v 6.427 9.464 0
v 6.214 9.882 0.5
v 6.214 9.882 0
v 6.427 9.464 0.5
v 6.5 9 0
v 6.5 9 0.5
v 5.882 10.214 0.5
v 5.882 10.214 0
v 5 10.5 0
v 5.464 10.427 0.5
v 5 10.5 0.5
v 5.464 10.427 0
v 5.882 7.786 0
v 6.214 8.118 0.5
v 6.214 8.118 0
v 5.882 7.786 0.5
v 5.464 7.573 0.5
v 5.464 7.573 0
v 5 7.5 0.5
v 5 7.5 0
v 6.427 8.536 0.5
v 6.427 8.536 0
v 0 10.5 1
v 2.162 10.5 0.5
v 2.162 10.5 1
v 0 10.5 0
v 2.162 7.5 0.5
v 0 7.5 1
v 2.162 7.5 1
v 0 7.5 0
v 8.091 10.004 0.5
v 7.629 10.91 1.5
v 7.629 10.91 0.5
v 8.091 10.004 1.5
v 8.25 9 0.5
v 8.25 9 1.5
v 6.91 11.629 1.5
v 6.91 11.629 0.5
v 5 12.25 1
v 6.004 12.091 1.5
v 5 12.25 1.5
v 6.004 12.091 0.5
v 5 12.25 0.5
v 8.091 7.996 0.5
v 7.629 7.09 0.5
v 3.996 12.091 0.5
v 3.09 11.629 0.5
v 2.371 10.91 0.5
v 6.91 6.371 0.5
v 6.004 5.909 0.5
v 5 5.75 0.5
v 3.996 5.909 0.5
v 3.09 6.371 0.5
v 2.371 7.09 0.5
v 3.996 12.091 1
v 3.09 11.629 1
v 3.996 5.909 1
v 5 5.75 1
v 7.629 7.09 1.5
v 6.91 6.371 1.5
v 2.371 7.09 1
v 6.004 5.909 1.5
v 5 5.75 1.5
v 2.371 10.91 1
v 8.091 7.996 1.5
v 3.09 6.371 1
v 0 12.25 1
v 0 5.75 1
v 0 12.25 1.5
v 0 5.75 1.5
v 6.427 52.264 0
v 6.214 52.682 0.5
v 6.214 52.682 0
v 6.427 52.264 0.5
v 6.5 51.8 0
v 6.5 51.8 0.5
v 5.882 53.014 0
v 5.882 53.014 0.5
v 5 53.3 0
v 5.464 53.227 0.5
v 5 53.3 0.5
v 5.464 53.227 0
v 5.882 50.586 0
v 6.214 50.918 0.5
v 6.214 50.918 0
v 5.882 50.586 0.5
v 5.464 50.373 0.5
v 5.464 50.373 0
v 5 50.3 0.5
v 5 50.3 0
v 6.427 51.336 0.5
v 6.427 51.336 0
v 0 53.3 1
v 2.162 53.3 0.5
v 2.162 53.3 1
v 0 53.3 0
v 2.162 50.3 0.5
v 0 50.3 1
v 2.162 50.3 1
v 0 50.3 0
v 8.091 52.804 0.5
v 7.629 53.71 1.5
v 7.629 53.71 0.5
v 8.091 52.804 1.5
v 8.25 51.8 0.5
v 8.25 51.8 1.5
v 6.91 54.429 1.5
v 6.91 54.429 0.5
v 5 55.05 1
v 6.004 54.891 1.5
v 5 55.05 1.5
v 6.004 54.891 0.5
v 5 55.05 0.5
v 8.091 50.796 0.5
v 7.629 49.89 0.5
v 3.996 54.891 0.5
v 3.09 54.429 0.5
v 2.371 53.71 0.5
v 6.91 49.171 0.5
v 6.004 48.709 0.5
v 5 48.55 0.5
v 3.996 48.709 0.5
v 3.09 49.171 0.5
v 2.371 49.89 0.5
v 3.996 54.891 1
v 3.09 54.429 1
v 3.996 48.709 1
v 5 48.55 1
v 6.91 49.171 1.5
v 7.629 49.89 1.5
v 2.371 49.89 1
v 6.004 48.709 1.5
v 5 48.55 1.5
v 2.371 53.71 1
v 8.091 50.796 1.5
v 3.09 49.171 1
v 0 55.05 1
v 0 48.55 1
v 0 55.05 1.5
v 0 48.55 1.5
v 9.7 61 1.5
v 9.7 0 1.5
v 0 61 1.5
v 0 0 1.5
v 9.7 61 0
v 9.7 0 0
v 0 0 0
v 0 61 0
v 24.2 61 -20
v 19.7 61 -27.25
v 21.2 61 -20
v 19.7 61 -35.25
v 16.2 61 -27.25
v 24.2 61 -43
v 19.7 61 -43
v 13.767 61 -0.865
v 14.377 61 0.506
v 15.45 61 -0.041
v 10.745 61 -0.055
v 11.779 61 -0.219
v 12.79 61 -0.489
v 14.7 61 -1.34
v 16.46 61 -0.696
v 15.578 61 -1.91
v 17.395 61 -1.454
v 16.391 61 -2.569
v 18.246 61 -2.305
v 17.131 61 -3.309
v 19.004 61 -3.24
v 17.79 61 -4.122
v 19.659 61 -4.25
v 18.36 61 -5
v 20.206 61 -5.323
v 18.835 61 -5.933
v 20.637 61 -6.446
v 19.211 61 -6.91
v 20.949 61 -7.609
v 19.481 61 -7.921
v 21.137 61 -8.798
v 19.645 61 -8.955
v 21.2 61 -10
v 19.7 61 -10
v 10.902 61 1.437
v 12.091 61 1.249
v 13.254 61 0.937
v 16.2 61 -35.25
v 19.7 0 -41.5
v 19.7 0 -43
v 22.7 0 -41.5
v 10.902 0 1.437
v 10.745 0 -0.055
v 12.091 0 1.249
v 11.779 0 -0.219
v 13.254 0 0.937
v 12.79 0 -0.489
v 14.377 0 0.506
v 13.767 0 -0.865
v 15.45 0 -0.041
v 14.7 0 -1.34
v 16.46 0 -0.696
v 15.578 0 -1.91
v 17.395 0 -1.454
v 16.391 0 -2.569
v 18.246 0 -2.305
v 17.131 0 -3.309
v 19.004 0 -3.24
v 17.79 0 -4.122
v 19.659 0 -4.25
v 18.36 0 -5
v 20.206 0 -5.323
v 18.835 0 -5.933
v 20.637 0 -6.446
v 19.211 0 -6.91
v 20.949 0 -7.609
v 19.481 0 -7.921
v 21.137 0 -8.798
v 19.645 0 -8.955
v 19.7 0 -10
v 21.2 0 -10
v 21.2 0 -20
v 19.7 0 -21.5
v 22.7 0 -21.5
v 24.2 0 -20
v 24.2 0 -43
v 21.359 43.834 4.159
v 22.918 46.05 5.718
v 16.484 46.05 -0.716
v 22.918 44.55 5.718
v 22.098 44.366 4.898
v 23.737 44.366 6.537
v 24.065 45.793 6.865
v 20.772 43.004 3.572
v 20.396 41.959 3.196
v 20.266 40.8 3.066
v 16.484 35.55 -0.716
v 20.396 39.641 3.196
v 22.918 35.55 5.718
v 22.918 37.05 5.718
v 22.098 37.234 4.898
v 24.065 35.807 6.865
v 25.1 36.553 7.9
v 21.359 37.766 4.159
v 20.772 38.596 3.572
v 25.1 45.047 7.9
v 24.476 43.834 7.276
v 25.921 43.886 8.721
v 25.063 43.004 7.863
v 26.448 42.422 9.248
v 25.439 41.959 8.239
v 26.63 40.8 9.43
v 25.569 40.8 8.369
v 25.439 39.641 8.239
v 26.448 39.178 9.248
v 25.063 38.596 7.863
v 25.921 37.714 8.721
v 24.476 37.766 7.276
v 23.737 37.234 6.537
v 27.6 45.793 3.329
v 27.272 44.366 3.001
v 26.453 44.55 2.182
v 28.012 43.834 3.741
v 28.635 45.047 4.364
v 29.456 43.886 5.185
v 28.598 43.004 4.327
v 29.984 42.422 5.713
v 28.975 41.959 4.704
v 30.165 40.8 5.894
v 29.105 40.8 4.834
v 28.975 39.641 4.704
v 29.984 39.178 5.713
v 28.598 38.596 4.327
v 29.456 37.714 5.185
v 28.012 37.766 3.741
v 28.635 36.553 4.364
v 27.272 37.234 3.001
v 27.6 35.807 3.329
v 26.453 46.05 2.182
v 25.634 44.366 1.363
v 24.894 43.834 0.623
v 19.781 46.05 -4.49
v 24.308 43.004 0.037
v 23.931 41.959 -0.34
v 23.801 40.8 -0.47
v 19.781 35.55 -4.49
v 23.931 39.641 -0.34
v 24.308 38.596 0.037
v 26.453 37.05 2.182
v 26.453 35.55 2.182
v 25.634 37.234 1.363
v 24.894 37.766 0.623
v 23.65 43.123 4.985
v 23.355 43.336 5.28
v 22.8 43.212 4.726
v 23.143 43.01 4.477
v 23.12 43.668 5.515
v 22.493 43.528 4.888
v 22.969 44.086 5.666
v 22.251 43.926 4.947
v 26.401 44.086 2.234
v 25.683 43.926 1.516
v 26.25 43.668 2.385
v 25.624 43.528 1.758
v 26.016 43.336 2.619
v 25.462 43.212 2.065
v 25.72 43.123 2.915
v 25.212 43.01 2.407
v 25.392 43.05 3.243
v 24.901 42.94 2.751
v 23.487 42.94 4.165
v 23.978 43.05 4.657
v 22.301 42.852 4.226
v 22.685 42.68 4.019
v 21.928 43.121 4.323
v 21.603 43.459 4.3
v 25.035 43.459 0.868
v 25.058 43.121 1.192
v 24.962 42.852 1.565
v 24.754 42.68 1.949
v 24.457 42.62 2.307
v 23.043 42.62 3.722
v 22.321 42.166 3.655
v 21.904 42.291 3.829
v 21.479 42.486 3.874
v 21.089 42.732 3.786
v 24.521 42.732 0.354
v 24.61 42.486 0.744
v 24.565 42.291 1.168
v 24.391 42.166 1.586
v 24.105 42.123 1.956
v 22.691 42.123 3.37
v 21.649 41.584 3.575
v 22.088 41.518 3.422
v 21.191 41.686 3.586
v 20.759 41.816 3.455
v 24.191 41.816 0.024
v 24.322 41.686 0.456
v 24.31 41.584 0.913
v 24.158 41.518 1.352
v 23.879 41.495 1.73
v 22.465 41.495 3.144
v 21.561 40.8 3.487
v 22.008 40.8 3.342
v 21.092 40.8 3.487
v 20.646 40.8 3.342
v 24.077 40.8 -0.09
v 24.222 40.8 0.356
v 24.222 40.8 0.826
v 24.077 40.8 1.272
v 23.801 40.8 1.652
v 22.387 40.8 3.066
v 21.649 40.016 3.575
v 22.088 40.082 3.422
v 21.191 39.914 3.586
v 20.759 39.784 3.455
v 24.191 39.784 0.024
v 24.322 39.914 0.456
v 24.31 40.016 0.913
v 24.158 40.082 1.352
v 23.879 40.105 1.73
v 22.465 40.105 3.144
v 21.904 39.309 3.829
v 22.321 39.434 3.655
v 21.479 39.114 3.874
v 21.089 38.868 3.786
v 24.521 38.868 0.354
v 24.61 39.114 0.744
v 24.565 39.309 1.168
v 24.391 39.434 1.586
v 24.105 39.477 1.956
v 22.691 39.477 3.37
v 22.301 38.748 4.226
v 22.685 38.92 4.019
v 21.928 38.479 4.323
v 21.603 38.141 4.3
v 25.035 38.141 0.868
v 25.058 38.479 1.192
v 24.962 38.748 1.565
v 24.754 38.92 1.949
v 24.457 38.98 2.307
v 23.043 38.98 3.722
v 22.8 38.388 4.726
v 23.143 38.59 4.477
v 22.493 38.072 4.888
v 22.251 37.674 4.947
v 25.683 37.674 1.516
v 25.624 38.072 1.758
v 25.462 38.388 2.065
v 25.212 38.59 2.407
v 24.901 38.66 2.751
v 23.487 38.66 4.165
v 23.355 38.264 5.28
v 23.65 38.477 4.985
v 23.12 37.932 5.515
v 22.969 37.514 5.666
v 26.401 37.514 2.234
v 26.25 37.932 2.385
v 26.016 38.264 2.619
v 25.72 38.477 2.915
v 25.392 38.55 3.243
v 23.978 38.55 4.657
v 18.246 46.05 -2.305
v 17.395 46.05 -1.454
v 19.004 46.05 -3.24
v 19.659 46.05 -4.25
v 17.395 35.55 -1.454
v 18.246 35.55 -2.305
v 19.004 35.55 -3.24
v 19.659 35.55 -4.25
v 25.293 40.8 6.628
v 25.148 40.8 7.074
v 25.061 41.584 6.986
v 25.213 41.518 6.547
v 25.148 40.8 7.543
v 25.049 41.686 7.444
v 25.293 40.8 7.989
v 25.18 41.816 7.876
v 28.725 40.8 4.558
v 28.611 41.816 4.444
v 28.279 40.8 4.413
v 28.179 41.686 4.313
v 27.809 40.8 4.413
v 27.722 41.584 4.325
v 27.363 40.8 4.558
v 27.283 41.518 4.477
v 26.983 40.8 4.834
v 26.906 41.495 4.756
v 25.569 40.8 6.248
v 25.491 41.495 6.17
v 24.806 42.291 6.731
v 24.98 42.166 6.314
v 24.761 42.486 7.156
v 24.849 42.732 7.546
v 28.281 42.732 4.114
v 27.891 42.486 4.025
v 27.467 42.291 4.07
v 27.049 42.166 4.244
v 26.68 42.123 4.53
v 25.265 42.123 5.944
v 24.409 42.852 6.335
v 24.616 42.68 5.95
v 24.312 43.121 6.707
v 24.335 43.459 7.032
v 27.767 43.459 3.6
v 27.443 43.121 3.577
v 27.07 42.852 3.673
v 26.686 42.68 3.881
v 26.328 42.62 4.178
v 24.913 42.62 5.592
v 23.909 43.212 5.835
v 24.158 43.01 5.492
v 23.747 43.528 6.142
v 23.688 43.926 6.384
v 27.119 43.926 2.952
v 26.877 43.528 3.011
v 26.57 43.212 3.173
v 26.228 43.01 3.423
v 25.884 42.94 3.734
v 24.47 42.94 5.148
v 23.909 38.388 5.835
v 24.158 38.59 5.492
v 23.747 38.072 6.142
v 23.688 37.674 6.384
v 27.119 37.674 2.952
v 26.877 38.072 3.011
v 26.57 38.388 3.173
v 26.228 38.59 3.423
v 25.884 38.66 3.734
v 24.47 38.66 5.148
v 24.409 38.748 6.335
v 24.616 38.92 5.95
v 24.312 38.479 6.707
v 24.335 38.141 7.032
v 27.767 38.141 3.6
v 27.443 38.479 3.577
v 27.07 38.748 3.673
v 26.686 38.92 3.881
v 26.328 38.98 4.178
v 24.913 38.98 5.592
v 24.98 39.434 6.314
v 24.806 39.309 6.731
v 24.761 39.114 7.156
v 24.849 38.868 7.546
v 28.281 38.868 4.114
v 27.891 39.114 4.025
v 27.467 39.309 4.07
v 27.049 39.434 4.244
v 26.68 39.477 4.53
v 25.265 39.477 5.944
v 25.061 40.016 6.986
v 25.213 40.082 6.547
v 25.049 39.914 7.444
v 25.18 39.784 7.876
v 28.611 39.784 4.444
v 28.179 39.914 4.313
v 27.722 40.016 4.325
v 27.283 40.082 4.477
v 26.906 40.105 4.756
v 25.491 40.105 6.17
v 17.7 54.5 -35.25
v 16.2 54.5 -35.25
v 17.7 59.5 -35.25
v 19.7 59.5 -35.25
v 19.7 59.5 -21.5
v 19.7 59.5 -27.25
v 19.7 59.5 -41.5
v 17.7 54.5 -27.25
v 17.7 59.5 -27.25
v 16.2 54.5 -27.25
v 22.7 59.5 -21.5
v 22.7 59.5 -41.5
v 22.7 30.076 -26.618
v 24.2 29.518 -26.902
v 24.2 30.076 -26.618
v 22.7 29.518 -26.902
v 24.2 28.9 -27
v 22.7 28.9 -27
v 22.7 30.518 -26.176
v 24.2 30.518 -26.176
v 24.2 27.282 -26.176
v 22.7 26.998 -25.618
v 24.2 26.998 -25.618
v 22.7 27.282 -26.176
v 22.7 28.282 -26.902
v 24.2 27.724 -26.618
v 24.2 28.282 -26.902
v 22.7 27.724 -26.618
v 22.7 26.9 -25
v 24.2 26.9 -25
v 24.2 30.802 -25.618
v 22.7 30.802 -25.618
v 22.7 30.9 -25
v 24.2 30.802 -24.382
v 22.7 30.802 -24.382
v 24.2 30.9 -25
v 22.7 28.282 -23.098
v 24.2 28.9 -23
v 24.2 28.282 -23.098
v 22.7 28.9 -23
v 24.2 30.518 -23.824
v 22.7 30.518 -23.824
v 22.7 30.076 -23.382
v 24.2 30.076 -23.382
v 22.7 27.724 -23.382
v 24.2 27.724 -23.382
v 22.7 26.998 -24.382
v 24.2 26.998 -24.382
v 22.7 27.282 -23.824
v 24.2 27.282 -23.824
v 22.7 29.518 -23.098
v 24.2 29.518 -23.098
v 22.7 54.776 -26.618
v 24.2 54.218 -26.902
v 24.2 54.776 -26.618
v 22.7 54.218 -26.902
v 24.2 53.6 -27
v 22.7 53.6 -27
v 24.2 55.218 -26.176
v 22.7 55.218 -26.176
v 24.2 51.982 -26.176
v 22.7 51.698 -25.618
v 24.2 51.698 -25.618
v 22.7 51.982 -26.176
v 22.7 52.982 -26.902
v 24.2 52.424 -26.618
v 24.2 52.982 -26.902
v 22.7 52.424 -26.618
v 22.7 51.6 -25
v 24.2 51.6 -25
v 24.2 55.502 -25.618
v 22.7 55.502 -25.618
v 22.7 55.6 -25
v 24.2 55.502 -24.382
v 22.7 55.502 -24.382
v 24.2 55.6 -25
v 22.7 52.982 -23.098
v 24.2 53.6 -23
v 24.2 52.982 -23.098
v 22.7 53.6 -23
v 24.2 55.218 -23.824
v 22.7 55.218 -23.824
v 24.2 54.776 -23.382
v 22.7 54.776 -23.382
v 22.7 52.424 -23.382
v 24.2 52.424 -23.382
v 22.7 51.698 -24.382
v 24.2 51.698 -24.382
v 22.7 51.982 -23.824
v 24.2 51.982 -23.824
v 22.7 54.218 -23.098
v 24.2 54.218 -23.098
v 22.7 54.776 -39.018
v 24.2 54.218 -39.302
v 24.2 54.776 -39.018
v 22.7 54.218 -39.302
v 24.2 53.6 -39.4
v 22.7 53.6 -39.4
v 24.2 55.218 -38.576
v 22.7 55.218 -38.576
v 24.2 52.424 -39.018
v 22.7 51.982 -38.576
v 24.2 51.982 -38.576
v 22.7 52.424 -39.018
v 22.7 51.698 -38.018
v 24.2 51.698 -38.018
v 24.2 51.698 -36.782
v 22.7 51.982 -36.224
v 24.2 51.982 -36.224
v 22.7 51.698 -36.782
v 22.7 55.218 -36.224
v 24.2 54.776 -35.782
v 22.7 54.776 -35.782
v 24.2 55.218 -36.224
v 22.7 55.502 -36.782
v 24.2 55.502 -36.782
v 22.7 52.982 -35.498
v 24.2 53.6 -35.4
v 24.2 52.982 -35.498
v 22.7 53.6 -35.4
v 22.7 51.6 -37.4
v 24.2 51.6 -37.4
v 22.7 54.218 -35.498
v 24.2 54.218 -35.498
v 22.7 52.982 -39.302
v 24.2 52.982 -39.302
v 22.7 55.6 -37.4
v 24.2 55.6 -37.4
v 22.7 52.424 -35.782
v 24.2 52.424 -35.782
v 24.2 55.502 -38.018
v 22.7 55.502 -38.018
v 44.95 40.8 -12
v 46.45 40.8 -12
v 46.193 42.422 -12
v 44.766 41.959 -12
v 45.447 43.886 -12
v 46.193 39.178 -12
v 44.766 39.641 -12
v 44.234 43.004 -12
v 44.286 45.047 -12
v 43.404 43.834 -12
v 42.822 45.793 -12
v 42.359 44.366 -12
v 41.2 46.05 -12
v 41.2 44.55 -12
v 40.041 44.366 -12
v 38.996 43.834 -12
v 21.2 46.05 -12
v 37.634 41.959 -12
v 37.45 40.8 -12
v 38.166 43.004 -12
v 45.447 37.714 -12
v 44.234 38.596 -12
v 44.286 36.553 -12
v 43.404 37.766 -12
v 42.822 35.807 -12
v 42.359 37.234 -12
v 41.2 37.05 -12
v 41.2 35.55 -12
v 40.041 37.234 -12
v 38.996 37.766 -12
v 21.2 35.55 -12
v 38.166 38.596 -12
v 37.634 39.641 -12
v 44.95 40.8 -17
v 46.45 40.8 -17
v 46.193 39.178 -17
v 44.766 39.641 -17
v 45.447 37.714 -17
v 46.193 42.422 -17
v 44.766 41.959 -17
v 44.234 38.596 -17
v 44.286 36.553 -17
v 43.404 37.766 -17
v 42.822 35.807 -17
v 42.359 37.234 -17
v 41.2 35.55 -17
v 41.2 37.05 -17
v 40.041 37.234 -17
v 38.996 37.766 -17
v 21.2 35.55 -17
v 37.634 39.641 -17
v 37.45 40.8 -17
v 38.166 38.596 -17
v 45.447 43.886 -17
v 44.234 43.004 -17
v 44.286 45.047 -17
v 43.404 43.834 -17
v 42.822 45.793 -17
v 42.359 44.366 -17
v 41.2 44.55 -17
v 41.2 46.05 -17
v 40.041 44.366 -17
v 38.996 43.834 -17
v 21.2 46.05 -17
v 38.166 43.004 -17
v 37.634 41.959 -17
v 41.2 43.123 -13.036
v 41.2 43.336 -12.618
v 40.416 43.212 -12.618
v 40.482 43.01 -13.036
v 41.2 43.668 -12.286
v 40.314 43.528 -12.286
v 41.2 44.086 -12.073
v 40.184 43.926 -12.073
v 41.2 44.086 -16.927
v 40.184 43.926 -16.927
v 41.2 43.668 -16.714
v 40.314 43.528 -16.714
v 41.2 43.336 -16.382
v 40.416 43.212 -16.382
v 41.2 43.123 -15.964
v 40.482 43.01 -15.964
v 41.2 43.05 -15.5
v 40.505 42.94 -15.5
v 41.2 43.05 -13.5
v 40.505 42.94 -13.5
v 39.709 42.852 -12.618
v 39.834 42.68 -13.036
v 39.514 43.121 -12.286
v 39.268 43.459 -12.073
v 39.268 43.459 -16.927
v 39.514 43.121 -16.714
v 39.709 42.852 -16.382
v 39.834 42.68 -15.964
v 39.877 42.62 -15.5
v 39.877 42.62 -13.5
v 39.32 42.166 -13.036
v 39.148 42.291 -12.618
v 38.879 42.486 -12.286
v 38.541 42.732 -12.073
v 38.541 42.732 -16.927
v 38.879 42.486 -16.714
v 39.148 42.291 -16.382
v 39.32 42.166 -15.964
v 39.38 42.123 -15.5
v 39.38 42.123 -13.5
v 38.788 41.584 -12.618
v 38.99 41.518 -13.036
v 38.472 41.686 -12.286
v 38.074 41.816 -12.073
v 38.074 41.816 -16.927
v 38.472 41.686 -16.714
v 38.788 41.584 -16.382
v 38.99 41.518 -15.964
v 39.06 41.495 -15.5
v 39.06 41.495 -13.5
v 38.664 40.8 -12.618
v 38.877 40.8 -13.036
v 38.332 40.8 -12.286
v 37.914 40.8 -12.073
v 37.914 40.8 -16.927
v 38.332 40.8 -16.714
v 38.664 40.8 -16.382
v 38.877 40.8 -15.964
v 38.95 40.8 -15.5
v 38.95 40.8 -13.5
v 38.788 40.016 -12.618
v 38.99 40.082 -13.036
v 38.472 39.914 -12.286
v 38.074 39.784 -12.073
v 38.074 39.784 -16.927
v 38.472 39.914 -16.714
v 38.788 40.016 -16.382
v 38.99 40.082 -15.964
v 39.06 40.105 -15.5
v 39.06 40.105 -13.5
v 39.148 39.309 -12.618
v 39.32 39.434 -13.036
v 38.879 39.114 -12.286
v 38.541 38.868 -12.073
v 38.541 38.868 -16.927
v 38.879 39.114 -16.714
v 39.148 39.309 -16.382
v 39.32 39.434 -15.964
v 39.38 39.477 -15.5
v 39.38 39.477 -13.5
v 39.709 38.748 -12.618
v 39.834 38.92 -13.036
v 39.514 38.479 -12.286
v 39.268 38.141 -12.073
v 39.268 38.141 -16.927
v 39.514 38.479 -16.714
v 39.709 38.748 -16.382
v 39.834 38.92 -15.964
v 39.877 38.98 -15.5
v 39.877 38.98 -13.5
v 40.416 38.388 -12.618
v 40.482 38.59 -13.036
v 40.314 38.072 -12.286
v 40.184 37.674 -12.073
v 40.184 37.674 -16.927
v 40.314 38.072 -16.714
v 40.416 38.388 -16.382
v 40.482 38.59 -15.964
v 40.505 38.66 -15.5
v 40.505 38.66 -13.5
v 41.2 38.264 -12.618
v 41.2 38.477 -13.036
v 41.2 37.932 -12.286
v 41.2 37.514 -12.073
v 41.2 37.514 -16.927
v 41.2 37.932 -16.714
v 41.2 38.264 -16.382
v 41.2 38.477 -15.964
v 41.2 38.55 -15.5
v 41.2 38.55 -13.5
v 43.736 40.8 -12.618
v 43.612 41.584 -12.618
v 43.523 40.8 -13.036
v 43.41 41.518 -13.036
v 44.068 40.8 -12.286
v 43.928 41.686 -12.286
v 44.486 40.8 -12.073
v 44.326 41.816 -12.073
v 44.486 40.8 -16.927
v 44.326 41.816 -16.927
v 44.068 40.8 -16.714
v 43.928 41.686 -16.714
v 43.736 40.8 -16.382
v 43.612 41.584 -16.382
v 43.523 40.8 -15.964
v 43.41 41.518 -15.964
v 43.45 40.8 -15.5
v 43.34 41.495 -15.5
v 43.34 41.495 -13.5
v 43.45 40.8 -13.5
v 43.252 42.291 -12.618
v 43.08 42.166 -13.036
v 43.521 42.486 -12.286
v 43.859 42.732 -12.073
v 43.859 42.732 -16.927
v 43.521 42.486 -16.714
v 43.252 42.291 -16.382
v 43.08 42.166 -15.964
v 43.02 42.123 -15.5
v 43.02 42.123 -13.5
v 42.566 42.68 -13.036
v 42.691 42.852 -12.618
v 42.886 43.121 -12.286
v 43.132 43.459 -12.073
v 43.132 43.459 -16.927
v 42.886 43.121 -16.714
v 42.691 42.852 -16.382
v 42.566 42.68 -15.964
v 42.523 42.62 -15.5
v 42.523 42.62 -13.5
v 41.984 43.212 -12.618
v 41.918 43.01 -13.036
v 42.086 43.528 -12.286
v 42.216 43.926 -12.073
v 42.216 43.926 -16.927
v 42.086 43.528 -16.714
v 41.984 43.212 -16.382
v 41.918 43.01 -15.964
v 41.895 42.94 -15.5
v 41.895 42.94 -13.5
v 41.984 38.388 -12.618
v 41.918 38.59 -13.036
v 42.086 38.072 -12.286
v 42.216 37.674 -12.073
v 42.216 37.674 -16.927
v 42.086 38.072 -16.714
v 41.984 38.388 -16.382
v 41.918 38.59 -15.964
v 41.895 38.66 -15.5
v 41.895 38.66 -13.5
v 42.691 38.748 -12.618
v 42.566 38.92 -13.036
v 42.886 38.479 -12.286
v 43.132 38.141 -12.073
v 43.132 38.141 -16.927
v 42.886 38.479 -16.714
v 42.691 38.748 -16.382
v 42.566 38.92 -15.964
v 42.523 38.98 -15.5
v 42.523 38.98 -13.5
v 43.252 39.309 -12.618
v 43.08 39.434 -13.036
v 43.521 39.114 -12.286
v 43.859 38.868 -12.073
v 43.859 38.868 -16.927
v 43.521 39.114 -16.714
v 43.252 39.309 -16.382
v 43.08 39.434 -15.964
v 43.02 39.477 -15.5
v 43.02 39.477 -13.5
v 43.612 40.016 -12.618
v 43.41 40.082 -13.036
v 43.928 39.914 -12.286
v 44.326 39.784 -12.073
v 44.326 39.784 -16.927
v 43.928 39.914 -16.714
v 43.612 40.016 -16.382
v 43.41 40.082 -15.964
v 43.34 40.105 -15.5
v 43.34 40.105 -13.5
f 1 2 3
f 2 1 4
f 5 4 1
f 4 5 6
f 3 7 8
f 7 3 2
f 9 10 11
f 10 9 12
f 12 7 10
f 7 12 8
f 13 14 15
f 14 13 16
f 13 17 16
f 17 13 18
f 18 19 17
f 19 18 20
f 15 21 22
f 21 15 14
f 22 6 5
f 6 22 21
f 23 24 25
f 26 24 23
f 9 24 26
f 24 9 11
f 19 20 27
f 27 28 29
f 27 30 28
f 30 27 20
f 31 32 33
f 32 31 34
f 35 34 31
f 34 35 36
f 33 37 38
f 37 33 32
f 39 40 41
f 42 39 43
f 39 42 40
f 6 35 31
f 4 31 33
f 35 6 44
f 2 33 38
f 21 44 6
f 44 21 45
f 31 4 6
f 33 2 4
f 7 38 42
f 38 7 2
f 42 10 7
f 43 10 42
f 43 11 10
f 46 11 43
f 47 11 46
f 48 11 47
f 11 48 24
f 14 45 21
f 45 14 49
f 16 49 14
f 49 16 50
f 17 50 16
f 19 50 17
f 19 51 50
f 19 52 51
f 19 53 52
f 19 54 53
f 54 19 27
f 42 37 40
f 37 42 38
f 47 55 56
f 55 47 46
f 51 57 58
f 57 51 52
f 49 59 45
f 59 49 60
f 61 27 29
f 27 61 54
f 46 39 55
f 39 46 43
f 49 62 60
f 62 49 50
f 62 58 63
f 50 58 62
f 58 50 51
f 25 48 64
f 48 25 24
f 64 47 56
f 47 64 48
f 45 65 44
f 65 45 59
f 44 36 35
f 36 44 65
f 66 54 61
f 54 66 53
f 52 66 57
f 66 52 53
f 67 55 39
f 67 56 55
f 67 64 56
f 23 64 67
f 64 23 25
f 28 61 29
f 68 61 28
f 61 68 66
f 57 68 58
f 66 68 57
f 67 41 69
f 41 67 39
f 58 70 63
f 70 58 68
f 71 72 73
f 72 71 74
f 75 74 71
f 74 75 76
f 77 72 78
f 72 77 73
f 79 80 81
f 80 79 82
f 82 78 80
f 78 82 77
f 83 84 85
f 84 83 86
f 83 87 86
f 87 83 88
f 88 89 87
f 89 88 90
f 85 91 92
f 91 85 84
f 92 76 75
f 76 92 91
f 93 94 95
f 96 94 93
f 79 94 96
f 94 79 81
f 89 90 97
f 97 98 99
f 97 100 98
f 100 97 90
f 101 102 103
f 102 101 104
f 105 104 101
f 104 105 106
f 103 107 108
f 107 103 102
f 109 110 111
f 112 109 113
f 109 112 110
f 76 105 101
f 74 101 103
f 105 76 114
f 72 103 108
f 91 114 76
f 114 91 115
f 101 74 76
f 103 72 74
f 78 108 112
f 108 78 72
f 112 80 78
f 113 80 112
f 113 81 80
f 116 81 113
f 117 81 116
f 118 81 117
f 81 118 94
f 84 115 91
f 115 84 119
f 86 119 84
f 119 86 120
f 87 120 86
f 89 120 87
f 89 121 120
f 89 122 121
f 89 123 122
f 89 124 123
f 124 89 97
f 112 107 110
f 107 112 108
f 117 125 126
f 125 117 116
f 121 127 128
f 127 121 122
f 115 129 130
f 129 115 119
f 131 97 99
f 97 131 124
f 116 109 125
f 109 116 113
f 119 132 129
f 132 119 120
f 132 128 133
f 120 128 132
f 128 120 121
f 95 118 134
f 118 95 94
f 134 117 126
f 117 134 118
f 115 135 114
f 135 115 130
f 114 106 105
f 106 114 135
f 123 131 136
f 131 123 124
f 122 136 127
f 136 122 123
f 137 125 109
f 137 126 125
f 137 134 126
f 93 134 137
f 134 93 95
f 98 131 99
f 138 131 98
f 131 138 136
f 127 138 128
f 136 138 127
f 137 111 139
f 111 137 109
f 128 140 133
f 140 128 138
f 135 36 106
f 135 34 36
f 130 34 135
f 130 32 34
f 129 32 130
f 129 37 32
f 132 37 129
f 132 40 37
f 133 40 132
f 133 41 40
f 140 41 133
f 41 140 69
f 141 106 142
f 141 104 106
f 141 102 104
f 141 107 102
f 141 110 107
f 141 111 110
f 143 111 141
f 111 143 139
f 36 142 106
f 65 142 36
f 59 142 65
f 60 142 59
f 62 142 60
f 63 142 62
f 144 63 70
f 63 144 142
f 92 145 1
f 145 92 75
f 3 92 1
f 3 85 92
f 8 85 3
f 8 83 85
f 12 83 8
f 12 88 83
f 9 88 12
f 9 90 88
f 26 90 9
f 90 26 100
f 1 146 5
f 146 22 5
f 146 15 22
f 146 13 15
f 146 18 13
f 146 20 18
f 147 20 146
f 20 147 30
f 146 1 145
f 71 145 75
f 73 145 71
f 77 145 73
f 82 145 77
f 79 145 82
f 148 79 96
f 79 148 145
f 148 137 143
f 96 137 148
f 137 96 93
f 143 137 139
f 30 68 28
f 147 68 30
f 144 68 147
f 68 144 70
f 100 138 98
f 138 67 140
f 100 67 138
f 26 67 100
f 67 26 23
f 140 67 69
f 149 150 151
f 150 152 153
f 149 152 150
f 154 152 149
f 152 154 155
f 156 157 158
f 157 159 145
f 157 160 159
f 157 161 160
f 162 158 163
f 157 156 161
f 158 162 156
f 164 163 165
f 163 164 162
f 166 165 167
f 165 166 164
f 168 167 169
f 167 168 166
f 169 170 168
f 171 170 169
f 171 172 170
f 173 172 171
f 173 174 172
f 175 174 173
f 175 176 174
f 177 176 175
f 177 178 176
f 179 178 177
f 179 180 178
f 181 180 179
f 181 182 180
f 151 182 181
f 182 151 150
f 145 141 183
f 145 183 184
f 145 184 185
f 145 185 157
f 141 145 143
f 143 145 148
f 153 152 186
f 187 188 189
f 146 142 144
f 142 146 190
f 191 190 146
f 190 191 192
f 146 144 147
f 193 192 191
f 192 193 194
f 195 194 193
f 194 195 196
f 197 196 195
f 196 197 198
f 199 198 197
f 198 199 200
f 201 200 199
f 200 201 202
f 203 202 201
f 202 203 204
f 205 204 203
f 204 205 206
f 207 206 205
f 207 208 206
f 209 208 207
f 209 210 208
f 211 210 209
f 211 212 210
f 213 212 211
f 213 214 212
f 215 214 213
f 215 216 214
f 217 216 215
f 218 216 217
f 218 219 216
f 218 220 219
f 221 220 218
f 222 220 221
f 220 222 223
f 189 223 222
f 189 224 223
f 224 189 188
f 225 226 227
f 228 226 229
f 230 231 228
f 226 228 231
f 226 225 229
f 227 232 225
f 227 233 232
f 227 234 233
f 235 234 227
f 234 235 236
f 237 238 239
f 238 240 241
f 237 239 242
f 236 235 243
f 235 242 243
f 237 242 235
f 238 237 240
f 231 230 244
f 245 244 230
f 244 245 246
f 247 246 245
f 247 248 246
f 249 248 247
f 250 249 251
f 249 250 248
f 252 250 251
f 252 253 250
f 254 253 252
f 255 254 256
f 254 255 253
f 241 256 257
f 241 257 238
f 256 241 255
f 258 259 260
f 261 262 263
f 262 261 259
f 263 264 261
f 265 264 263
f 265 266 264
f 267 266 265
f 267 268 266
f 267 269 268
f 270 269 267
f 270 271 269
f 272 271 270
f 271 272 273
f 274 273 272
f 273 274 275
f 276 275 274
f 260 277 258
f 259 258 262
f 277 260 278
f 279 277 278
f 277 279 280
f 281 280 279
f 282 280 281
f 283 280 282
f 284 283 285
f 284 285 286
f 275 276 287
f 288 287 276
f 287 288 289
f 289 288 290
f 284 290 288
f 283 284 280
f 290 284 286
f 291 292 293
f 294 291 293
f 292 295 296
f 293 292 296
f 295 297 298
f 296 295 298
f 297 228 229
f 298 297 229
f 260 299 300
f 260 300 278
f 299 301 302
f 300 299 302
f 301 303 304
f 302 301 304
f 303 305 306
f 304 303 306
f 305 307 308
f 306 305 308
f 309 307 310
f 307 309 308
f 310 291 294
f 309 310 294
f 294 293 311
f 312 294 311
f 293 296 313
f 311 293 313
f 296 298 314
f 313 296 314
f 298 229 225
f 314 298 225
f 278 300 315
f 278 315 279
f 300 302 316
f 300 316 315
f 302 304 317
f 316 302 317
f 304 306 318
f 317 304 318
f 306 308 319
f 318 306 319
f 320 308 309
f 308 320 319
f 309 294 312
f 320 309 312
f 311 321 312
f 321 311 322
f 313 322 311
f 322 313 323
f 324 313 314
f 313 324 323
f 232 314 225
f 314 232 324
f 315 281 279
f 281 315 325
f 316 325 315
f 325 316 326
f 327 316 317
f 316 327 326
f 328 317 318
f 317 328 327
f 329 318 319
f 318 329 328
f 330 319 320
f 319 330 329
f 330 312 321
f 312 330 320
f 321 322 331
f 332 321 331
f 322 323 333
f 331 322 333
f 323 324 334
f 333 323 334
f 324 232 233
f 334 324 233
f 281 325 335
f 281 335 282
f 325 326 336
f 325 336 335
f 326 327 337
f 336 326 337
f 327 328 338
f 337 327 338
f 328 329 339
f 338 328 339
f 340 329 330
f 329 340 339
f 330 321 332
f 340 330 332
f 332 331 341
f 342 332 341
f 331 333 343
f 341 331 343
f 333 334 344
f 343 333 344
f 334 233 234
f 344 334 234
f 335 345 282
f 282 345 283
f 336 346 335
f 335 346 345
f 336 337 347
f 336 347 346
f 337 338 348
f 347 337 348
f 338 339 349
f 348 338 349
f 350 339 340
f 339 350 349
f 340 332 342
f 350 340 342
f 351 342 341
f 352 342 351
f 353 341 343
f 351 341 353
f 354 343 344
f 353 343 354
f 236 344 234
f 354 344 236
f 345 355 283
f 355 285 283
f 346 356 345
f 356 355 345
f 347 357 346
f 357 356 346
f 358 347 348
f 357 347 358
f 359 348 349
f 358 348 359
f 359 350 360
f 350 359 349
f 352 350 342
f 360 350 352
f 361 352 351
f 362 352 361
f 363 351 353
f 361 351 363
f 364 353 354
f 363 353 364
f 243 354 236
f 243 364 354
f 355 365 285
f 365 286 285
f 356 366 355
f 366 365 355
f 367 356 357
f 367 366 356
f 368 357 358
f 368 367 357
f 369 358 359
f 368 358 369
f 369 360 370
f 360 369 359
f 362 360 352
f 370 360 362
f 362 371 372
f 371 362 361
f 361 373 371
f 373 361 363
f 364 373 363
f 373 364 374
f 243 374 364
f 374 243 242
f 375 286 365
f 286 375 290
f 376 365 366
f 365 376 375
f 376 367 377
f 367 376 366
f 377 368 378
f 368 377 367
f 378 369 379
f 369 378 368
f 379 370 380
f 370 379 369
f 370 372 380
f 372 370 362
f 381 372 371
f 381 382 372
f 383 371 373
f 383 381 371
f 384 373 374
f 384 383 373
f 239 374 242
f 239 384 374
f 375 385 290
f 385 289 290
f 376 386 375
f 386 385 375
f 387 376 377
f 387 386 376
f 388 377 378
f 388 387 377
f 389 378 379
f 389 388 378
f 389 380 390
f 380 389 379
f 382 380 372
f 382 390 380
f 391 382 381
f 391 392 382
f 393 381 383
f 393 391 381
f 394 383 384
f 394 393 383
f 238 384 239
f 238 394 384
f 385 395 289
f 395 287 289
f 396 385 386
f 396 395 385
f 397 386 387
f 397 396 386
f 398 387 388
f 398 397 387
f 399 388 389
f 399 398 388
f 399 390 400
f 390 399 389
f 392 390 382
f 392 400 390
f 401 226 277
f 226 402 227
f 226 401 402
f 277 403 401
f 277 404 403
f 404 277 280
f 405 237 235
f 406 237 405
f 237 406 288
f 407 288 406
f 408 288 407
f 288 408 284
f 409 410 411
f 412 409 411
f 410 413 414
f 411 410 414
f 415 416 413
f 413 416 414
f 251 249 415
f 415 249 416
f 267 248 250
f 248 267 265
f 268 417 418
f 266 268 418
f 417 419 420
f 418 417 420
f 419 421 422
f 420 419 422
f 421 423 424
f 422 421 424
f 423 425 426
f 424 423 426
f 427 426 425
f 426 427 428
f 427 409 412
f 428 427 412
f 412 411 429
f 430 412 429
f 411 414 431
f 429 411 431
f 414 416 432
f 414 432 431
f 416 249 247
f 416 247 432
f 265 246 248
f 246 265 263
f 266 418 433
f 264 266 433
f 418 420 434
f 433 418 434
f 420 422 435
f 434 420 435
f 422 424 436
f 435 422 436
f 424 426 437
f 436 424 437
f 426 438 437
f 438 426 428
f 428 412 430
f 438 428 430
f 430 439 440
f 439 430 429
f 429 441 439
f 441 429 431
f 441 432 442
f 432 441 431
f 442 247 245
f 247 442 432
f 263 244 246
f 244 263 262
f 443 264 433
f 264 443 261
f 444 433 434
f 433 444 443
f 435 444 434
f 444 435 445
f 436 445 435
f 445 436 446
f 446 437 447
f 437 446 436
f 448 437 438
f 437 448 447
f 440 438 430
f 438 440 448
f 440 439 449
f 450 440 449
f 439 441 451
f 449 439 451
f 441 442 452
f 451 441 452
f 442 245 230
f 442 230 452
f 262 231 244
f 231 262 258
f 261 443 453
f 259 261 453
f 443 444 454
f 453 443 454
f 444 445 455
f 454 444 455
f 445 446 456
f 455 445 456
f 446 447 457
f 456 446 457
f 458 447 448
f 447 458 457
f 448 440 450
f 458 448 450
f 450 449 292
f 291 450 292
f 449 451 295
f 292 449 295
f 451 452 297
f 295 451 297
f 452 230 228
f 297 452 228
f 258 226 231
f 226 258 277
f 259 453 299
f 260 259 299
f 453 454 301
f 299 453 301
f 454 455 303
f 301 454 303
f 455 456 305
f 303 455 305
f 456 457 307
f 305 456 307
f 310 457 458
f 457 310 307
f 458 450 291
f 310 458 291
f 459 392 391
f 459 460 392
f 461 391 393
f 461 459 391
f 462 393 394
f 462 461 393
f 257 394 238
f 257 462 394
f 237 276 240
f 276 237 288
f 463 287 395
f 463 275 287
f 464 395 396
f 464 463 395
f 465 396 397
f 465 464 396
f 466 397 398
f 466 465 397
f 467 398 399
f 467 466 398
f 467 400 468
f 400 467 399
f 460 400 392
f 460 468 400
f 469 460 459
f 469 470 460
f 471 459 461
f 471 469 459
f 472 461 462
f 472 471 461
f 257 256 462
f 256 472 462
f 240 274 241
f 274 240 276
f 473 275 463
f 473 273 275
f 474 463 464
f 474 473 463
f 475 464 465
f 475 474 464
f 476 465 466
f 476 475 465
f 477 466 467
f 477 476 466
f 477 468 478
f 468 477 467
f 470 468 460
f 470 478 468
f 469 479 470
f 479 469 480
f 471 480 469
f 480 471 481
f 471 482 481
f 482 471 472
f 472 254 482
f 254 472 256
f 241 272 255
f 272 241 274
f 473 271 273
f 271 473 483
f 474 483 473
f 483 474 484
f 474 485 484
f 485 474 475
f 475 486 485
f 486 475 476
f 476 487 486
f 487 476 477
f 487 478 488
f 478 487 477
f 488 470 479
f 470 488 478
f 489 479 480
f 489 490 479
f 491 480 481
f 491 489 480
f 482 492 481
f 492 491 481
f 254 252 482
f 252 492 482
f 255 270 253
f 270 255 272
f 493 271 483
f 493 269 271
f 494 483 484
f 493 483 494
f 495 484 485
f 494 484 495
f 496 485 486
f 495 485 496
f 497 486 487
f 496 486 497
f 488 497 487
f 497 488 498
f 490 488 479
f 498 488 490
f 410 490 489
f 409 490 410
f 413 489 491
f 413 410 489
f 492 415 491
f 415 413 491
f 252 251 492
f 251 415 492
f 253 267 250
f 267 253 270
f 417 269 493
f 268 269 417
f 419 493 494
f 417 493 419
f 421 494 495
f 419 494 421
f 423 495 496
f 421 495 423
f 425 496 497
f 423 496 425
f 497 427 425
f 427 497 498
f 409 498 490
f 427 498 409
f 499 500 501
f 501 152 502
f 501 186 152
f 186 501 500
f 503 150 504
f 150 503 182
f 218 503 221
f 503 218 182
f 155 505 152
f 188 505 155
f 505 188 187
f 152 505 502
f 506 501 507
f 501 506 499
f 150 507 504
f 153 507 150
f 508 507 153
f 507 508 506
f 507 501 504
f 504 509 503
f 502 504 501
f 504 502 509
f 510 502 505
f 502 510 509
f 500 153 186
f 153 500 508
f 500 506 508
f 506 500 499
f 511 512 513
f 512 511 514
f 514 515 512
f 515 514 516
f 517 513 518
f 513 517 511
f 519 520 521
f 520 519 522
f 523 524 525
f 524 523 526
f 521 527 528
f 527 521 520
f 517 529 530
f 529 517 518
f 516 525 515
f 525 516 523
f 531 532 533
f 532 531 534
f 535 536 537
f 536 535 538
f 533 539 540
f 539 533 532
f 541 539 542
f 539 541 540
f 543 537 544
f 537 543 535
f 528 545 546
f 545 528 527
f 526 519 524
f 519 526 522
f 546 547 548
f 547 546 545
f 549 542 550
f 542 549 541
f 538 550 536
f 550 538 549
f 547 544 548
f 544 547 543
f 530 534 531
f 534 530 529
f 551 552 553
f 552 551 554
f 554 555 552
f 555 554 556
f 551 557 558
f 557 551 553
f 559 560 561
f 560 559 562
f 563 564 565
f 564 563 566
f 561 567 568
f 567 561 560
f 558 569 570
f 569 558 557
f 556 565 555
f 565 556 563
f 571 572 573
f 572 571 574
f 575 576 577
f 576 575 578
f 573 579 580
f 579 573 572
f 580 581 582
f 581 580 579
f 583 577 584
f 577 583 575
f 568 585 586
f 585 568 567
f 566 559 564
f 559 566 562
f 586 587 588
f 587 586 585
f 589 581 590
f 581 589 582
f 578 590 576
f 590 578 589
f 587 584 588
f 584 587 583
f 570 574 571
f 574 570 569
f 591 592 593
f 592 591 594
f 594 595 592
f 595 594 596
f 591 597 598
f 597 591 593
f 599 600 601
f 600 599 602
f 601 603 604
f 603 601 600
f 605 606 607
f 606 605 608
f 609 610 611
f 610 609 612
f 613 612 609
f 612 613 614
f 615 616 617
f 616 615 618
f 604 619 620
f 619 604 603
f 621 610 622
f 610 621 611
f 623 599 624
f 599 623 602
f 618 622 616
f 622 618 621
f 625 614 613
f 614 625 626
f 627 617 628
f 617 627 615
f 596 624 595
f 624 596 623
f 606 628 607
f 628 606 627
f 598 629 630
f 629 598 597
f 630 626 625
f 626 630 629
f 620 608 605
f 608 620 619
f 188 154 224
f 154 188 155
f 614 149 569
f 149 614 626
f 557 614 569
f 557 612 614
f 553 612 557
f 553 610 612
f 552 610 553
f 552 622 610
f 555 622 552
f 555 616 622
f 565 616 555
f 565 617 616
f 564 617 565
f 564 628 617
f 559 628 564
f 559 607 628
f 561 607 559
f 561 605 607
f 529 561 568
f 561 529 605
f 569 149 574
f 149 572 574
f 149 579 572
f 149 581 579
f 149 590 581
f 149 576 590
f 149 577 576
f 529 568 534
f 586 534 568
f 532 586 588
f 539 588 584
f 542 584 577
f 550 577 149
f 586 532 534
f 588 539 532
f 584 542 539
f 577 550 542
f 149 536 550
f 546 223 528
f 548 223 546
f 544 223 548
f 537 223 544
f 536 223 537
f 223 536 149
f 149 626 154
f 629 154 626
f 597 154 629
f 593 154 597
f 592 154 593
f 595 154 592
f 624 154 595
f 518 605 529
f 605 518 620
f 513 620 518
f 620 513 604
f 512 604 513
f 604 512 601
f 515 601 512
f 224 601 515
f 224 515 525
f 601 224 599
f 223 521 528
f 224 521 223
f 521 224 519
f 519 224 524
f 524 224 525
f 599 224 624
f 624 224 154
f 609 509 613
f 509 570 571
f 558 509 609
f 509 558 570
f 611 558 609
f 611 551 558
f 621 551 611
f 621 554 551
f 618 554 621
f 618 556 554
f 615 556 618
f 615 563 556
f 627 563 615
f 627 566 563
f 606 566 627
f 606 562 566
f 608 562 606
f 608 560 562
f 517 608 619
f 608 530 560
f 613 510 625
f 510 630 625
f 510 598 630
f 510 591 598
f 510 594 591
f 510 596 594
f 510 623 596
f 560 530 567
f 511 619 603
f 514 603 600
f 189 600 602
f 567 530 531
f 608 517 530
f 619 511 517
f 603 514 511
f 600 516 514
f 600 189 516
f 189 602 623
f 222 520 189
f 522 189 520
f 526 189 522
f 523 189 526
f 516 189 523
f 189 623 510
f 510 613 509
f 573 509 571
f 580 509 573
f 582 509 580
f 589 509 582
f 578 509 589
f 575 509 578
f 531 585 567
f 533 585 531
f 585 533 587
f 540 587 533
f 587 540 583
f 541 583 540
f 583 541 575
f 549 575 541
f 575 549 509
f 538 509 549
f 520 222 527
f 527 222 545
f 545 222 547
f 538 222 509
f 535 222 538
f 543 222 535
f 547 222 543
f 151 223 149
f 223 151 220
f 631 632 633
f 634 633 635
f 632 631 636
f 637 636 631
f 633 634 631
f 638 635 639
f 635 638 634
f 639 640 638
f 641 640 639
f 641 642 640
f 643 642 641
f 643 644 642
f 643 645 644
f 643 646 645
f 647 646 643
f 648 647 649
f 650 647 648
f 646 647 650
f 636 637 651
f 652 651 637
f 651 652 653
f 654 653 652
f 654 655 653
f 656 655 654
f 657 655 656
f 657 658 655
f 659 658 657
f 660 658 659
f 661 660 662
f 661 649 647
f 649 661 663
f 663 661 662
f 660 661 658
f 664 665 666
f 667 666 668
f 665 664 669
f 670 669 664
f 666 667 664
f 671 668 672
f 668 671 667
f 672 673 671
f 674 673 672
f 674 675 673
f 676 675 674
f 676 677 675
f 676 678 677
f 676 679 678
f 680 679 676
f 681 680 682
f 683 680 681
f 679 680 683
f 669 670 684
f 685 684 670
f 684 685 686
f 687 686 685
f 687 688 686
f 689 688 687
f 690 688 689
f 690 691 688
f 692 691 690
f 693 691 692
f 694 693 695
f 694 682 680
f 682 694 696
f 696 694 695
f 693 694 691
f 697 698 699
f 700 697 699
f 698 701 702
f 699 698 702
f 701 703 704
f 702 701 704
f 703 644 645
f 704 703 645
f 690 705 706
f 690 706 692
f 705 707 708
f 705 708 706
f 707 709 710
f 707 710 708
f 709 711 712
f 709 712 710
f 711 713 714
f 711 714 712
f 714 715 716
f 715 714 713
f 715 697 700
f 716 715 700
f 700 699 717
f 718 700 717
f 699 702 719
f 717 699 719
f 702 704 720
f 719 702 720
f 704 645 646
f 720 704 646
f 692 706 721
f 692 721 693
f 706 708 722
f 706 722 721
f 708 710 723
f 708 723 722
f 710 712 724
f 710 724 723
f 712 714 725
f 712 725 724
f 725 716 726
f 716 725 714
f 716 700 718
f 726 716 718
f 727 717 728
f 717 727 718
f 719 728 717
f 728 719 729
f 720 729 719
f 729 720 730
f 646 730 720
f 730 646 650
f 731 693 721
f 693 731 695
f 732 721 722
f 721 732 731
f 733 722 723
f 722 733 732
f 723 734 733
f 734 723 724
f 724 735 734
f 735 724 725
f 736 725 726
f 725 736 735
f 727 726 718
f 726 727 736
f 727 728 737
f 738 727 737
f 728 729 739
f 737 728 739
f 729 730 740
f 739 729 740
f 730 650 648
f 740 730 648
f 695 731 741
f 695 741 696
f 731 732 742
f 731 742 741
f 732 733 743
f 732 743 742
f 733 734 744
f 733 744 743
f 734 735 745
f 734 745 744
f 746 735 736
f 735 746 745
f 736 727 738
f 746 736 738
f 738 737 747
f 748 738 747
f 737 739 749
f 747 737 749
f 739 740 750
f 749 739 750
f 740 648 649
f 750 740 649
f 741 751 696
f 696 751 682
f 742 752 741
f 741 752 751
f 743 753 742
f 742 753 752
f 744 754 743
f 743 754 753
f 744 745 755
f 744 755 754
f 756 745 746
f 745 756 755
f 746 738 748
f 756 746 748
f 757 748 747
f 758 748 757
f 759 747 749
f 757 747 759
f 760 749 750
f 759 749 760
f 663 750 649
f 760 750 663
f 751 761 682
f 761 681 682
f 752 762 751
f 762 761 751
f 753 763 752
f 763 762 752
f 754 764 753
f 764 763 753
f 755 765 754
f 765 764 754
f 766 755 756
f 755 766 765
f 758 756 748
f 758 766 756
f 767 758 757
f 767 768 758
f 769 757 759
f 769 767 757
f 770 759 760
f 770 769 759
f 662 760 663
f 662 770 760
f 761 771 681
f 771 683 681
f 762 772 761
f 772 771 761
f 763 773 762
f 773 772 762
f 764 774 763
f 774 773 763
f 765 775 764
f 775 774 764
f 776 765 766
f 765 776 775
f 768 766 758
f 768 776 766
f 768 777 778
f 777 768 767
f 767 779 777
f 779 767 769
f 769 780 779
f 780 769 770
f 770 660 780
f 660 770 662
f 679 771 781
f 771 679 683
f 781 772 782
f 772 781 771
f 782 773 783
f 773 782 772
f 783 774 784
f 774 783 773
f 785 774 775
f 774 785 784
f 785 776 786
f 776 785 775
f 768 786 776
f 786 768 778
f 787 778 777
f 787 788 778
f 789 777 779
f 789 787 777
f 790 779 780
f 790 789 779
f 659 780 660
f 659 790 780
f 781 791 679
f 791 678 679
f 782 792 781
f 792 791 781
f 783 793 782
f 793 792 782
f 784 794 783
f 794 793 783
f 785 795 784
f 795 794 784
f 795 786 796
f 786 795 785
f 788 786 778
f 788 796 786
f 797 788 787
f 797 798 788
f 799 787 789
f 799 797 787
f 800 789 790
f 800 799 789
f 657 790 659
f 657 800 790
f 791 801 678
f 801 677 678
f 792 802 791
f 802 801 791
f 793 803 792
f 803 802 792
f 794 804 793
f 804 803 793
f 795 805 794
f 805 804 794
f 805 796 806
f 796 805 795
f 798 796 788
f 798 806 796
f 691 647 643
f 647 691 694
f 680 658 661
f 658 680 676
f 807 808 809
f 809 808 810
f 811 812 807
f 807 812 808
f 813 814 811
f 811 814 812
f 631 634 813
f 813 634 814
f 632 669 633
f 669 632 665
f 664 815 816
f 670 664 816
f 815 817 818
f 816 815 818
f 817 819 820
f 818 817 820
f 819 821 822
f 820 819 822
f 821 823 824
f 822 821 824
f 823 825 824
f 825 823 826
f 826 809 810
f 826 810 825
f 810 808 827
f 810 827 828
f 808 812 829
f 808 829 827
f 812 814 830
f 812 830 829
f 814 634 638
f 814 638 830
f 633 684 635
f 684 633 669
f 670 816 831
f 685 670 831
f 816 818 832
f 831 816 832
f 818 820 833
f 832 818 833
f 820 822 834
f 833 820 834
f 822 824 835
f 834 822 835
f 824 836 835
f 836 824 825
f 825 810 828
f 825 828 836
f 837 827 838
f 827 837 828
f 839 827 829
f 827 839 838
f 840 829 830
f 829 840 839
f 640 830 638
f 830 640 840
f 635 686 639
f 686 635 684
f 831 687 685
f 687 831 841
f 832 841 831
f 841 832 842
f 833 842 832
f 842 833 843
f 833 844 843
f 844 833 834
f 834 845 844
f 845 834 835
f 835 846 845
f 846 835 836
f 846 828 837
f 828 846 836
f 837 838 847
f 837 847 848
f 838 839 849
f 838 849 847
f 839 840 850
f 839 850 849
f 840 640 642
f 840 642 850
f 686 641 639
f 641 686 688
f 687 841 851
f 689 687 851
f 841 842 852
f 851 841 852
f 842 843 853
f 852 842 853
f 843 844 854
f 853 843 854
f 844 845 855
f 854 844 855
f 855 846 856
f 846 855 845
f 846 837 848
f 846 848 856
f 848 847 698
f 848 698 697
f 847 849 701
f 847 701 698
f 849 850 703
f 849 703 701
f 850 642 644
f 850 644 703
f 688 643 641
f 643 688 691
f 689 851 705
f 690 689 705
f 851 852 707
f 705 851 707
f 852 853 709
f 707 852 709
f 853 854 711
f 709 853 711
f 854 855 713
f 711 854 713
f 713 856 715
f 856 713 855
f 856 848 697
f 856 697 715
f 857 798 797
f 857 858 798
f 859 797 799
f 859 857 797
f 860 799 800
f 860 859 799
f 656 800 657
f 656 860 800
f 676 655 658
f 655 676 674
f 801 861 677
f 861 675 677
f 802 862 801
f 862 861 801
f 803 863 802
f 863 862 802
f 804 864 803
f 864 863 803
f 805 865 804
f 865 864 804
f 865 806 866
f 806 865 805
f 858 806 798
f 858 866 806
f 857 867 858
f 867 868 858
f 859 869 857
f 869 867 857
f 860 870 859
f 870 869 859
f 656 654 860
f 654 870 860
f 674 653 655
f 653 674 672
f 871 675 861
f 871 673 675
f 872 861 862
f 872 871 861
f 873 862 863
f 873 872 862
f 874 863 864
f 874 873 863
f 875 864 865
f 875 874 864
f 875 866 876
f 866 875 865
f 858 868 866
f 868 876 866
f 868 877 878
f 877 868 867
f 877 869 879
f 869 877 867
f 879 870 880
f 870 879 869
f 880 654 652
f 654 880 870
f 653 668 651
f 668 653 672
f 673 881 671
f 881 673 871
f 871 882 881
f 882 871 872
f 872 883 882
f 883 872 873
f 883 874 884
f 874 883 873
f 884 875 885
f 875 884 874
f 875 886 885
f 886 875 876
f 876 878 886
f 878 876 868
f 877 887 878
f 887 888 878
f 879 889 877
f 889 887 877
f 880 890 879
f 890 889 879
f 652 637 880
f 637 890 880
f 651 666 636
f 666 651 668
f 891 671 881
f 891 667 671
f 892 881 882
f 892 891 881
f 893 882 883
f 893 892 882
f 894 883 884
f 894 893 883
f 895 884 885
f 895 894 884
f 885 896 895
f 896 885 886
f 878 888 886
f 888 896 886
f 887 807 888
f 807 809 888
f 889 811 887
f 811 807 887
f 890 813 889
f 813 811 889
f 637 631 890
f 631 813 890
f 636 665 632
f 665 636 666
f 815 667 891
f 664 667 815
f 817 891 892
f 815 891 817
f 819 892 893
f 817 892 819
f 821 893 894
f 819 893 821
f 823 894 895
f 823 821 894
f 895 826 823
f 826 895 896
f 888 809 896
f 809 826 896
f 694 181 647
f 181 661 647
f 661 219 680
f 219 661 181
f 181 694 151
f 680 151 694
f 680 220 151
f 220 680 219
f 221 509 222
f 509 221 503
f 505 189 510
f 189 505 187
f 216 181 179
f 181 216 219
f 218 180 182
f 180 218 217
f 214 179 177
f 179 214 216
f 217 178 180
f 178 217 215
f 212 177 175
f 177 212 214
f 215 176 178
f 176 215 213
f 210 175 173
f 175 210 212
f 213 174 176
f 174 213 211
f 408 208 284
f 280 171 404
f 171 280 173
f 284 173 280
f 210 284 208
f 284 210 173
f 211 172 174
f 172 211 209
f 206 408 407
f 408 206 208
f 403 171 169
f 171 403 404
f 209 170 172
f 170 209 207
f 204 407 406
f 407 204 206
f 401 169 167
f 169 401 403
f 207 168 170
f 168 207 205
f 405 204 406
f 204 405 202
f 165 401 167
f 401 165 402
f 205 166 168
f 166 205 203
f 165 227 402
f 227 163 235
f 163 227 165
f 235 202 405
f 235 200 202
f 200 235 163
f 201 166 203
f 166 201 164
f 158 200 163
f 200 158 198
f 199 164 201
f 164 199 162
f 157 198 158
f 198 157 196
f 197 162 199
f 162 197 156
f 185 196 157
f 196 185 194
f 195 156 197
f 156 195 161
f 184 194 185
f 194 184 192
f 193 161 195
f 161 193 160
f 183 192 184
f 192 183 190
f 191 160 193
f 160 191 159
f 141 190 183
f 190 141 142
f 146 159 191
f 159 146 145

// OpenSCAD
// Runout sensor bracket for MP Mini Select V2 and BTT SVS v2

// Helpers
x=0; y=1; z=2;

// Parameters
$fn = 20;
thickness = 1.5;			// z-thickness of shelf
ydim = 59.5 + thickness;	// Total y size of part
bezel_r = 5;				// Radius of bezeled corners of bracket

// Chassis screw 49.13 head to head - 6.31/head = 42.82
chassis_screw_ydelta = 42.8;
chassis_screw_yorigin = 9;
chassis_screw_r = 3 / 2;	// Radius of chasssis mounting screw holes
chassis_screws = [			// Positions of chassis mounting screw holes
	[5,chassis_screw_yorigin],
	[5, chassis_screw_yorigin + chassis_screw_ydelta]
];
chassis_slot_thickness = 1.0;
chassis_screw_well_thickness = 0.5;
chassis_screw_well_r = 6.5 / 2;
chassis_bezel_r = 10.0;		// Radius of bend at corner of chassis
chassis_xdim = chassis_screws[0][x] + 14.7 - chassis_bezel_r;			// Width of straight run of chassis shelf

// Chassis filament port is -11.0 from chassis_screws[1] 
// Sensor filament port is +11.9 from sensor_screws[0]
filament_plane = chassis_screws[1][y] - 11.0;
filament_height_at_sensor = 20.0 - thickness;
filament_height_at_chassis = 11.0 - thickness;

sensor_screw_r = 4 / 2;		// Radius of sensor mounting screw holes
sensor_screw_ydelta = 24.7;
sensor_screw_xdelta = 12.4;
sensor_screw_yorigin = filament_plane - 11.9 - bezel_r;
sensor_screws = [			// Positions of sensor mounting screw holes
	// [0,15],
	// [0, 39],
	// [12, 39]
	[0, sensor_screw_yorigin],
	[0, sensor_screw_yorigin + sensor_screw_ydelta],
	[0 + sensor_screw_xdelta, sensor_screw_yorigin + sensor_screw_ydelta]
];
sensor_shelf_standoff = 3;
sensor_xdim = 23;
sensor_xdelta = 10; // Height of straight run before start of sensor shelf

gantry_hook_gap = 2.0; // Thickness of sheet-steel
gantry_hook_height = 8.0;
gantry_hook_depth = 5.0;

grommet_inner_r = 2.25;
grommet_thickness = 3;
grommet_bezel_r = 1.5;
grommet_depth = 5;
grommet_xoff = -grommet_depth - 3;

// Assembly

chassis_shelf();
chassis_bezel();
// Stick a filament guide on the chassis bezel
translate([chassis_xdim + chassis_bezel_r - (grommet_depth / 2) - 1, filament_plane, -1])
    rotate([0,45,0])
        filament_guide(filament_height_at_chassis);
rotate([0,90,0])
	translate([chassis_bezel_r + sensor_xdelta, 0, chassis_bezel_r + chassis_xdim])
		sensor_shelf();

*sensor_shelf();
*filament_grommet();
*grommet_hole();

// Modules

module filament_grommet() {
	rotate_extrude(angle = 360) {
		// Make a 2D square with bezeled edges on one side
		translate([grommet_inner_r, 0, 0]) {
			translate([grommet_bezel_r, grommet_bezel_r, 0])
				circle(r=grommet_bezel_r);
			translate([grommet_bezel_r, grommet_depth - grommet_bezel_r, 0])
				circle(r=grommet_bezel_r);
			translate([0, grommet_bezel_r, 0])
				square([grommet_bezel_r, grommet_depth - (2 * grommet_bezel_r)]);
			translate([grommet_bezel_r, 0, 0])
				square([grommet_thickness - grommet_bezel_r, grommet_depth]);
		}
	}
}

module grommet_hole() {
    difference() {
        cylinder(h=grommet_depth, r=(grommet_inner_r + grommet_thickness));
        filament_grommet();
    }
}

module filament_guide(height) {
    // grommet
    translate([0, 0, height])
        rotate([0,90,0])
            filament_grommet();
	// grommet brace
    difference() {
        translate([0, -grommet_inner_r - grommet_thickness, 0])
            cube([grommet_depth, (2 * grommet_inner_r) + (2 * grommet_thickness), height]);
        translate([0, 0, height])
            rotate([0,90,0])
                grommet_hole();
    }
}

module gantry_hook() {
    translate([0,0,-gantry_hook_gap])
        cube([gantry_hook_height, thickness, gantry_hook_gap]);
    translate([0,-gantry_hook_depth,-gantry_hook_gap - thickness])
        cube([gantry_hook_height, gantry_hook_depth + thickness, thickness]);
}

module sensor_shelf() {
    translate([-sensor_xdelta, 0, 0])
        cube([sensor_xdelta, ydim, thickness]);
	translate([0,0,sensor_shelf_standoff]) {
		difference() {
			cube([sensor_xdim, ydim, thickness]);
			for (i = [0 : 2]) {
				translate(sensor_screws[i])
					translate([bezel_r,bezel_r,-1])
						cylinder(h=thickness + 2, r=sensor_screw_r);
			}
		}
	}
	// standoff
	cube([thickness, ydim, sensor_shelf_standoff]);
    *cube([sensor_xdim, thickness, sensor_shelf_standoff]);
	translate([sensor_xdim - thickness, 0, 0])
		cube([thickness, ydim, sensor_shelf_standoff]);
	translate([0, ydim - thickness, 0])
		cube([sensor_xdim, thickness, sensor_shelf_standoff]);

    // hook
    translate([7.25, ydim - thickness, 0])
        color("red") gantry_hook();

	// grommet 
   	translate([grommet_xoff, filament_plane, 0])
        filament_guide(filament_height_at_sensor + sensor_shelf_standoff);
}

module chassis_bezel() {
	translate([chassis_xdim,ydim,-chassis_bezel_r])
		rotate([90, 0, 0])
			rotate_extrude(angle=90, convexity=2, $fn=60) 
				translate([chassis_bezel_r, 0, 0])
					square([thickness, ydim]);
}

module chassis_shelf() {
	difference() {
		cube([chassis_xdim, ydim, thickness]);
		for (i = [0 : 1]) {
			translate(chassis_screws[i]) {
				screw_slot();
			}
		}
	}
}	

module screw_slot() {
	// inner slot
	translate([0,0,-10])
		cylinder(h=20, r=chassis_screw_r);
	translate([-20, -chassis_screw_r, -10])
		cube([20, chassis_screw_r * 2, 20]);
	// outer slot
	translate([0,0,chassis_screw_well_thickness])
		cylinder(h=20, r=chassis_screw_well_r);
	translate([-20, -chassis_screw_well_r, chassis_slot_thickness])
		cube([20, chassis_screw_well_r * 2, 20]);
}
